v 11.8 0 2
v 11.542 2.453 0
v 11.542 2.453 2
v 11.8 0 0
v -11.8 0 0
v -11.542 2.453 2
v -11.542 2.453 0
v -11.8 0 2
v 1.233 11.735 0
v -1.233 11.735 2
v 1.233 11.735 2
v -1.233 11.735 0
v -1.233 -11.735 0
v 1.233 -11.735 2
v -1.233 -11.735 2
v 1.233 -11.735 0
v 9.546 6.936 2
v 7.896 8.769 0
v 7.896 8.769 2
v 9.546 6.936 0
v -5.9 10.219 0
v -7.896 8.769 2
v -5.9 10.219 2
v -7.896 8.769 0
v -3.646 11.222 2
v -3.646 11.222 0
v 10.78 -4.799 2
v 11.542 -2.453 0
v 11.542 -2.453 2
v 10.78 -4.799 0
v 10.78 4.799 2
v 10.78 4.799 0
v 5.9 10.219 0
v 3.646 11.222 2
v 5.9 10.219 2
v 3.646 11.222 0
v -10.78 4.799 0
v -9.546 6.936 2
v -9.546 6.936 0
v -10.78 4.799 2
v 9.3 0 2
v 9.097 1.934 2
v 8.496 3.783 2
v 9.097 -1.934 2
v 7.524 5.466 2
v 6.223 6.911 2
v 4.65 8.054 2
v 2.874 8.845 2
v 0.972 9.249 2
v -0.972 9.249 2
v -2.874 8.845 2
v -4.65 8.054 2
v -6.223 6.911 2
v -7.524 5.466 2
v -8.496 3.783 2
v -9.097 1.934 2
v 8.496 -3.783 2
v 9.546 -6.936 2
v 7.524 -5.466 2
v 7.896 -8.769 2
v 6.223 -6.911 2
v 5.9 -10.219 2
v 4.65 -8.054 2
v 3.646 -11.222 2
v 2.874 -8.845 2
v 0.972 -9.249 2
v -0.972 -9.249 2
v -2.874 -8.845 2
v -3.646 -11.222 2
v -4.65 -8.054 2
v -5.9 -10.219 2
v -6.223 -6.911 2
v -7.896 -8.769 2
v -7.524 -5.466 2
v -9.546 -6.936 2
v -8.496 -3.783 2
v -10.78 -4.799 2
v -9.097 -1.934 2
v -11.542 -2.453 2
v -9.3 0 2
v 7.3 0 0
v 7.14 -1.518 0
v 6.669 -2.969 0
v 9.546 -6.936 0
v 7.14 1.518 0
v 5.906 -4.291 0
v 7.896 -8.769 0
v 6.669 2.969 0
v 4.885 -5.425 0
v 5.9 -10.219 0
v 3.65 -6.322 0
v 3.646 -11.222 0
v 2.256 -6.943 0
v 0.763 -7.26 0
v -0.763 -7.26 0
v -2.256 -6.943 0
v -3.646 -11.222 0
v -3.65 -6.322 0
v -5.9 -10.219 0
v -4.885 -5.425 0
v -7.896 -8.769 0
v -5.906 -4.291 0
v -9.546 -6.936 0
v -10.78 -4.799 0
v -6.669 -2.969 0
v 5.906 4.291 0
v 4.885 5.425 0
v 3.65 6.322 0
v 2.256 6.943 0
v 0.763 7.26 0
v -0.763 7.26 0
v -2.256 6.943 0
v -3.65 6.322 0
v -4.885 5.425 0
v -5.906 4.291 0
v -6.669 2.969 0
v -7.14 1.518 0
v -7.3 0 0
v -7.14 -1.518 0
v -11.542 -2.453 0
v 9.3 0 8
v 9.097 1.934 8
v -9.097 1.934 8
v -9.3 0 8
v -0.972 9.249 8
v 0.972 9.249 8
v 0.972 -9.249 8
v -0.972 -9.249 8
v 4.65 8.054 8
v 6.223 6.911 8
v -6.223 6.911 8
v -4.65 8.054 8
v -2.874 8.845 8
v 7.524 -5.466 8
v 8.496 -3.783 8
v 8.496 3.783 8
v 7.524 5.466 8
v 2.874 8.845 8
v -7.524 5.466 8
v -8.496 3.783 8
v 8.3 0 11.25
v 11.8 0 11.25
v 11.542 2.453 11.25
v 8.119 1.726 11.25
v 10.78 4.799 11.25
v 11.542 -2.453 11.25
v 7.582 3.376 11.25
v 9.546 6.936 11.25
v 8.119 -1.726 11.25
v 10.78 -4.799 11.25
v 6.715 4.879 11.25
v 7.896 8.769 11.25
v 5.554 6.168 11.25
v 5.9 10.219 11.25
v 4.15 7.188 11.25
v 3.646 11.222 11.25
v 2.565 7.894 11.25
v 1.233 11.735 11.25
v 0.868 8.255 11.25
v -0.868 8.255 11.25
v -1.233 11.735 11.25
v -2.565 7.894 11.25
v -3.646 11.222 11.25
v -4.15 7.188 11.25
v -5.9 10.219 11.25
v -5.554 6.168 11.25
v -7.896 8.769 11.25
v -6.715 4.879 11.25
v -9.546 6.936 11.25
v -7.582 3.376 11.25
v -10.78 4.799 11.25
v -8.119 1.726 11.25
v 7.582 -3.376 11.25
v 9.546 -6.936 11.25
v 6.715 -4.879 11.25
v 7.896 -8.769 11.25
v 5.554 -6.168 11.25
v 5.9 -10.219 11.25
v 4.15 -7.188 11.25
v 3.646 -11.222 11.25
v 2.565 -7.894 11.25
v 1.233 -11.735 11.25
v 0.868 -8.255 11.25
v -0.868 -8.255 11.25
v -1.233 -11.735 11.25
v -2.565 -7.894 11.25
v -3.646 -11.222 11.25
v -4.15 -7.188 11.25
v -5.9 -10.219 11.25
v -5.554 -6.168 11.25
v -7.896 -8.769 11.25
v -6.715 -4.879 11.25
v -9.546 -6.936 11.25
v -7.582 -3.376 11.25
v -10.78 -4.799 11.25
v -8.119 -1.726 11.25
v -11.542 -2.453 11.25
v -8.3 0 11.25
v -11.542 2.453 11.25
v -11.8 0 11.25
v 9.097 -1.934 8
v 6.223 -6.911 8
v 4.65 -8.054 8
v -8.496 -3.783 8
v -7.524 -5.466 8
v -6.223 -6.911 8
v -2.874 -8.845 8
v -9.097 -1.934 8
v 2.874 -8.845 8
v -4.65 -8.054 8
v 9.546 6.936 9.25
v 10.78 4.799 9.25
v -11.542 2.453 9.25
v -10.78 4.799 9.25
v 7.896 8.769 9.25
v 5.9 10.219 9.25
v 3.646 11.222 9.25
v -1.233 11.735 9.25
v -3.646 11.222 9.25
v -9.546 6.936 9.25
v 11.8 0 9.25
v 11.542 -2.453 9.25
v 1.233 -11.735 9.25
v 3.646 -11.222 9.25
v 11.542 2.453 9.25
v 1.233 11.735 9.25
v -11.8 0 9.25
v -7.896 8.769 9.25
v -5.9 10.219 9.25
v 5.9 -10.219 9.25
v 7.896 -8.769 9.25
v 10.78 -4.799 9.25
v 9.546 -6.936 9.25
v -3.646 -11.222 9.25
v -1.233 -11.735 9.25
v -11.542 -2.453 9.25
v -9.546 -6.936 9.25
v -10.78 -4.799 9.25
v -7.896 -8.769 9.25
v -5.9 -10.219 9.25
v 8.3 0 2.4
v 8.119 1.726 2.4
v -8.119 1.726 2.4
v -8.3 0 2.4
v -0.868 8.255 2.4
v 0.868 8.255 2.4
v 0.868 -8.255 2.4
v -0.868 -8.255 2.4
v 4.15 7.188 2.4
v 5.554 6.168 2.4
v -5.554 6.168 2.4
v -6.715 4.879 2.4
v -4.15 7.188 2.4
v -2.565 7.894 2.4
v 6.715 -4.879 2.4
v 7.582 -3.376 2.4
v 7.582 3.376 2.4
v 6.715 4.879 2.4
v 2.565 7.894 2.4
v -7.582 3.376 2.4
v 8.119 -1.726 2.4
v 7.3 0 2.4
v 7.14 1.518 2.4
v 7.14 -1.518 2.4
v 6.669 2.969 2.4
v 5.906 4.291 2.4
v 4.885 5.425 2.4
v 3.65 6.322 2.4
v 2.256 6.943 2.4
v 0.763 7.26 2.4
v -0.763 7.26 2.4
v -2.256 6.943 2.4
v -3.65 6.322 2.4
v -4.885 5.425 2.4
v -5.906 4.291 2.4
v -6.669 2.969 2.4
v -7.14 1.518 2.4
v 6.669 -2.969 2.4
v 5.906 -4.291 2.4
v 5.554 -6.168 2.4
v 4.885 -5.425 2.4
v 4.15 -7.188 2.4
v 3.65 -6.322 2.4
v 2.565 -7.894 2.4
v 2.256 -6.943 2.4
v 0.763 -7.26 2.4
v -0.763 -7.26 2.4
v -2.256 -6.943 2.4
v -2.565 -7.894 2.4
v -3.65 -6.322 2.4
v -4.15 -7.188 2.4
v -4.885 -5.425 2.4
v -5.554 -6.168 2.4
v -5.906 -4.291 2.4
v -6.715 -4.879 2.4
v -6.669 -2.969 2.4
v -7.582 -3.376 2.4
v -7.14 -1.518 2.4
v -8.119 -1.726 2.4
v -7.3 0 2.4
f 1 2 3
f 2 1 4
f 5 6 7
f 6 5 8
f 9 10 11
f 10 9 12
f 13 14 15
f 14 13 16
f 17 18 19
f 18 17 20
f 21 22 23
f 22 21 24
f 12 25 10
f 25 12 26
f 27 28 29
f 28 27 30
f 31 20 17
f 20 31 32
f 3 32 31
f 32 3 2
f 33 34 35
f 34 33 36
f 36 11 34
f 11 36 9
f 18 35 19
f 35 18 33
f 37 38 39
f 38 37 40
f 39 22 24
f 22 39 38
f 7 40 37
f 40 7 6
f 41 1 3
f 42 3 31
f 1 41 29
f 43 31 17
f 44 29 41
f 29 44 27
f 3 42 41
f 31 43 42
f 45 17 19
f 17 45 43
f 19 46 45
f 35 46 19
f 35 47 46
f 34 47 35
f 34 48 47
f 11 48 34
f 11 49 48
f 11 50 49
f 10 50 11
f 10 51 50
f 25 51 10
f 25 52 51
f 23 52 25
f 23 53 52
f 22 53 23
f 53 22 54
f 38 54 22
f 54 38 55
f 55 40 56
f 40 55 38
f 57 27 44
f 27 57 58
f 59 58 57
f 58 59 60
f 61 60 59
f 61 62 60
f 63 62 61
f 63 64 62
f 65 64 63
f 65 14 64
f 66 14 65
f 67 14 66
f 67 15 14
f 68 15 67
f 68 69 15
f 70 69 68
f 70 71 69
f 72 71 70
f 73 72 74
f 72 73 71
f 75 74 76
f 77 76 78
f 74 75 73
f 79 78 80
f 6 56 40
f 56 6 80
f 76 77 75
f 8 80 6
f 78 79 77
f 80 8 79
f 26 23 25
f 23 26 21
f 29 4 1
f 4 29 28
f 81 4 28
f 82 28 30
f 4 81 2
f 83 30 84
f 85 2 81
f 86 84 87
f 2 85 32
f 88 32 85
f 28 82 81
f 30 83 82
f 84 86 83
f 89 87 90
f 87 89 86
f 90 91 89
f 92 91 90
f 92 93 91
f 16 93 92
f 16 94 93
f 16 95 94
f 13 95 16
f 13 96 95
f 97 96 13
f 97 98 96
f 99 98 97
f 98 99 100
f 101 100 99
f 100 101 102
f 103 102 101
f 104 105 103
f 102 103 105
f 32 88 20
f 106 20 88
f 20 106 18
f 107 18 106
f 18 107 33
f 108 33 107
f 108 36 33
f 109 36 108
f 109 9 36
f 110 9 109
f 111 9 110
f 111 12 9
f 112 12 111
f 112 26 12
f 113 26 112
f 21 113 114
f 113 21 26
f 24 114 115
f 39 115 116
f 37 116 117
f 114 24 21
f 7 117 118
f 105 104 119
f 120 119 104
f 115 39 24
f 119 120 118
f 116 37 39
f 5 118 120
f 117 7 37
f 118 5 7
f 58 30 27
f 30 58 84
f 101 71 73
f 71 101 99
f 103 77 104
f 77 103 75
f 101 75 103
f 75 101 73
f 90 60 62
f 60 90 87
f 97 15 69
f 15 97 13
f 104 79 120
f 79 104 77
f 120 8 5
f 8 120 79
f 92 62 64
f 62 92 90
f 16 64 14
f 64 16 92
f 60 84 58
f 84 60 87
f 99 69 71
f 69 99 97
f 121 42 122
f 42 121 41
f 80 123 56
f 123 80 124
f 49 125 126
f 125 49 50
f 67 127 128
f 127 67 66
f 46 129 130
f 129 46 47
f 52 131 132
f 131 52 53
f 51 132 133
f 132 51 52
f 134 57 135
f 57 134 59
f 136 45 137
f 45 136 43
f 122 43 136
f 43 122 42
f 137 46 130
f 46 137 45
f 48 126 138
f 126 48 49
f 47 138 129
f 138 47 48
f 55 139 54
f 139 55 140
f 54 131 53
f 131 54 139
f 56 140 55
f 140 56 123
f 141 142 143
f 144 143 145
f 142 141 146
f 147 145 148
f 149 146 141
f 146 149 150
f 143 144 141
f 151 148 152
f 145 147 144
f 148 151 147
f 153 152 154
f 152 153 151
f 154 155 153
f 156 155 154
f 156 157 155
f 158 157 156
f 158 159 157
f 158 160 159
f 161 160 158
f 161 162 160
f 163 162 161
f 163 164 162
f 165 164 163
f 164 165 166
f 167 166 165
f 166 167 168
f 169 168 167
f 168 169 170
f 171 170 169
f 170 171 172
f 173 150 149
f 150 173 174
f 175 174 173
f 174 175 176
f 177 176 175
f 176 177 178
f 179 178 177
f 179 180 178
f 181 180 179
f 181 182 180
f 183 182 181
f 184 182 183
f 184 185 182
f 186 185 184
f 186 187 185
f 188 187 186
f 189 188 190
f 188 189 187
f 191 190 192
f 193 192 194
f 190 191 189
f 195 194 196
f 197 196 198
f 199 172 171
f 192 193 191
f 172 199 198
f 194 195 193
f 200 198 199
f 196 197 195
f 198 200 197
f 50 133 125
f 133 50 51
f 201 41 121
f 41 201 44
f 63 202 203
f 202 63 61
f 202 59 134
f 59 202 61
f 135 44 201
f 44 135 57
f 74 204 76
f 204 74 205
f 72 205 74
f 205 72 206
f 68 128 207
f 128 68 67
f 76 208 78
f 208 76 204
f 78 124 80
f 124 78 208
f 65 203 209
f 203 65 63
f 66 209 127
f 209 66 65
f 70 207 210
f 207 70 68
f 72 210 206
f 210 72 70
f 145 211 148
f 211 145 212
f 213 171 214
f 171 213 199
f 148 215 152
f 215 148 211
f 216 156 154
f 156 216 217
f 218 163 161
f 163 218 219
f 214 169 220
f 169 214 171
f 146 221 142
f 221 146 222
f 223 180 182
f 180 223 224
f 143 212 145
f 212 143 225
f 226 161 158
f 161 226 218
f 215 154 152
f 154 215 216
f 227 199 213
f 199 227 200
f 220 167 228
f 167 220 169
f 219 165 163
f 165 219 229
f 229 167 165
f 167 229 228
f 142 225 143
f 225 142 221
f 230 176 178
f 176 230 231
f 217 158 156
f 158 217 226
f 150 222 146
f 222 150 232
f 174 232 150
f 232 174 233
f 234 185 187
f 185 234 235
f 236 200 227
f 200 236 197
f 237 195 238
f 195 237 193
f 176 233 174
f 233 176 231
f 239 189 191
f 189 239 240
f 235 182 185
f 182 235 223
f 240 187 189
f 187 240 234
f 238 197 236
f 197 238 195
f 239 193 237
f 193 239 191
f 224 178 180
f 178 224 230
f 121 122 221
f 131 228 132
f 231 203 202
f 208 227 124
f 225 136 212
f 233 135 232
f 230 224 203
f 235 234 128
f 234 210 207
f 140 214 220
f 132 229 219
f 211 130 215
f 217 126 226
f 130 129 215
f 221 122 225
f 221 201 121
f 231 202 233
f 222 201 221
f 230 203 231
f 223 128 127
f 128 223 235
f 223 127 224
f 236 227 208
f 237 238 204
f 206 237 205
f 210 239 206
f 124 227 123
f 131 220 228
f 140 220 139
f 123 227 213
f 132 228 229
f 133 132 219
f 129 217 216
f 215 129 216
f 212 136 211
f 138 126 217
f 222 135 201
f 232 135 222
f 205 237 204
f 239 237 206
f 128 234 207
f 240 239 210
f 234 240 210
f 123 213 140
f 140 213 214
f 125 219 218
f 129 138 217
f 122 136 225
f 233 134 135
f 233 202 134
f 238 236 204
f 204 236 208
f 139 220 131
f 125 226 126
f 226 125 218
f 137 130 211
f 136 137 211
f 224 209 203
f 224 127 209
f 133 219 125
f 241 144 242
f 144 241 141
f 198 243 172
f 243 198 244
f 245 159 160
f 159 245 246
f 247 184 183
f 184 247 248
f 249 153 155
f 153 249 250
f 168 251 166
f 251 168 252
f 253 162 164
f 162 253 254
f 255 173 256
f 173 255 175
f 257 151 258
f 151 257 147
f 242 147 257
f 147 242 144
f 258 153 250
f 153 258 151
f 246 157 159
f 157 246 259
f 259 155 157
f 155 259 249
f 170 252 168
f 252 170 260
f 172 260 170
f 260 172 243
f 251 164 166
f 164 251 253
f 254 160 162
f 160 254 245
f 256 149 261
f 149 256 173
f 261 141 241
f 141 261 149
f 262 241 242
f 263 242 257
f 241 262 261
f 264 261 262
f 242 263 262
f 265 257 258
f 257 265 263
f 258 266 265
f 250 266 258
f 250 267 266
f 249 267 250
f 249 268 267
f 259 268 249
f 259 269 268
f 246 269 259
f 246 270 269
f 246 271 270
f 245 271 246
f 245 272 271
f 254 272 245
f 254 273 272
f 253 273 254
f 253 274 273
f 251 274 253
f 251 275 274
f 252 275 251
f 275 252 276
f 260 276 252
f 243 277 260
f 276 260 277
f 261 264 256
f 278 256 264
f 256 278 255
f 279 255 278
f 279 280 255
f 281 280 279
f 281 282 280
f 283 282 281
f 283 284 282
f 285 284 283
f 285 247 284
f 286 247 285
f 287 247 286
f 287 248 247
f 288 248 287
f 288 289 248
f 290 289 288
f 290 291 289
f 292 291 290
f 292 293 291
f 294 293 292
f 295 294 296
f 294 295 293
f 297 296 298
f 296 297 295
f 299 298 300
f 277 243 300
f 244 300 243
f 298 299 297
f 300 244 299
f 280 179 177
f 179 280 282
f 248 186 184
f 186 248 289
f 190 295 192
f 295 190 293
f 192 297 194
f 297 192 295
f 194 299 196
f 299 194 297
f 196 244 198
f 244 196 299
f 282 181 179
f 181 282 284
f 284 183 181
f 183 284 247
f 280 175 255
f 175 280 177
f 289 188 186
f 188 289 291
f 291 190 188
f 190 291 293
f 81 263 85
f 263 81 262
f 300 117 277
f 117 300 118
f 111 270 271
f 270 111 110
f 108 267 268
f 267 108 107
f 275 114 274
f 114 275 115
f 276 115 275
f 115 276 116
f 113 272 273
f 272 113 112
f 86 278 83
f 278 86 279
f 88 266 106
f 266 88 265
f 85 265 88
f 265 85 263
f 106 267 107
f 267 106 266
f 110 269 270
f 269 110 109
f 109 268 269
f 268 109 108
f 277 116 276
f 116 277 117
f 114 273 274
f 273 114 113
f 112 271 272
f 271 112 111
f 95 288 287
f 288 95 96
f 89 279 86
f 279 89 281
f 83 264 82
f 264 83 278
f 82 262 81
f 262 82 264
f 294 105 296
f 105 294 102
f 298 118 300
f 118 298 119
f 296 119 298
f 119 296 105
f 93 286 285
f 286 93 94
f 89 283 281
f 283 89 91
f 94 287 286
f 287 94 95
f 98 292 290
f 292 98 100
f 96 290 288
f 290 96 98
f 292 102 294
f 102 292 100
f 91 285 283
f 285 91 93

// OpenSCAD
//variables (mm)
bearingOD = 16;// bearing diameter
bearingwidth = 5;
beltwidth= 6;

slopfactor = .6; // it printed a bit tight on my printer so i added this slop factor to make the hole slightly looser.. you may not need it

thickness = 2;

	idlerID = bearingOD + slopfactor; 

	idlerOD = idlerID+thickness;
	$fn=30; //faceting

//these are the lips that hold the belt on
	lipheight = 2.5;
	lipthickness = 2;
	topangle = 60; //the angle the top lip overhang makes. You can increase this to lower the idler profile.

//construction
	difference(){
	union(){
	cylinder(r=lipheight+idlerOD/2, h=lipthickness);
		cylinder(r=idlerOD/2, h = lipthickness*2+beltwidth+lipheight*cos(topangle));
		translate([0,0,lipthickness+beltwidth+lipheight*cos(topangle)])cylinder(r=lipheight+idlerOD/2, h=lipthickness);
		translate([0,0,beltwidth+lipthickness])cylinder(r1=idlerOD/2, r2=lipheight+idlerOD/2, h=lipheight*cos(topangle));
		}
		translate([0,0,-.1+lipthickness+(beltwidth-bearingwidth)/2])cylinder(r=idlerID/2, h=lipthickness+beltwidth+lipheight*2-(beltwidth-bearingwidth)/2);
            // inner lip to hold bearing
		translate([0,0,-1])cylinder(r=idlerID/2-1, h=lipthickness+1+(beltwidth-bearingwidth)/2);
}
